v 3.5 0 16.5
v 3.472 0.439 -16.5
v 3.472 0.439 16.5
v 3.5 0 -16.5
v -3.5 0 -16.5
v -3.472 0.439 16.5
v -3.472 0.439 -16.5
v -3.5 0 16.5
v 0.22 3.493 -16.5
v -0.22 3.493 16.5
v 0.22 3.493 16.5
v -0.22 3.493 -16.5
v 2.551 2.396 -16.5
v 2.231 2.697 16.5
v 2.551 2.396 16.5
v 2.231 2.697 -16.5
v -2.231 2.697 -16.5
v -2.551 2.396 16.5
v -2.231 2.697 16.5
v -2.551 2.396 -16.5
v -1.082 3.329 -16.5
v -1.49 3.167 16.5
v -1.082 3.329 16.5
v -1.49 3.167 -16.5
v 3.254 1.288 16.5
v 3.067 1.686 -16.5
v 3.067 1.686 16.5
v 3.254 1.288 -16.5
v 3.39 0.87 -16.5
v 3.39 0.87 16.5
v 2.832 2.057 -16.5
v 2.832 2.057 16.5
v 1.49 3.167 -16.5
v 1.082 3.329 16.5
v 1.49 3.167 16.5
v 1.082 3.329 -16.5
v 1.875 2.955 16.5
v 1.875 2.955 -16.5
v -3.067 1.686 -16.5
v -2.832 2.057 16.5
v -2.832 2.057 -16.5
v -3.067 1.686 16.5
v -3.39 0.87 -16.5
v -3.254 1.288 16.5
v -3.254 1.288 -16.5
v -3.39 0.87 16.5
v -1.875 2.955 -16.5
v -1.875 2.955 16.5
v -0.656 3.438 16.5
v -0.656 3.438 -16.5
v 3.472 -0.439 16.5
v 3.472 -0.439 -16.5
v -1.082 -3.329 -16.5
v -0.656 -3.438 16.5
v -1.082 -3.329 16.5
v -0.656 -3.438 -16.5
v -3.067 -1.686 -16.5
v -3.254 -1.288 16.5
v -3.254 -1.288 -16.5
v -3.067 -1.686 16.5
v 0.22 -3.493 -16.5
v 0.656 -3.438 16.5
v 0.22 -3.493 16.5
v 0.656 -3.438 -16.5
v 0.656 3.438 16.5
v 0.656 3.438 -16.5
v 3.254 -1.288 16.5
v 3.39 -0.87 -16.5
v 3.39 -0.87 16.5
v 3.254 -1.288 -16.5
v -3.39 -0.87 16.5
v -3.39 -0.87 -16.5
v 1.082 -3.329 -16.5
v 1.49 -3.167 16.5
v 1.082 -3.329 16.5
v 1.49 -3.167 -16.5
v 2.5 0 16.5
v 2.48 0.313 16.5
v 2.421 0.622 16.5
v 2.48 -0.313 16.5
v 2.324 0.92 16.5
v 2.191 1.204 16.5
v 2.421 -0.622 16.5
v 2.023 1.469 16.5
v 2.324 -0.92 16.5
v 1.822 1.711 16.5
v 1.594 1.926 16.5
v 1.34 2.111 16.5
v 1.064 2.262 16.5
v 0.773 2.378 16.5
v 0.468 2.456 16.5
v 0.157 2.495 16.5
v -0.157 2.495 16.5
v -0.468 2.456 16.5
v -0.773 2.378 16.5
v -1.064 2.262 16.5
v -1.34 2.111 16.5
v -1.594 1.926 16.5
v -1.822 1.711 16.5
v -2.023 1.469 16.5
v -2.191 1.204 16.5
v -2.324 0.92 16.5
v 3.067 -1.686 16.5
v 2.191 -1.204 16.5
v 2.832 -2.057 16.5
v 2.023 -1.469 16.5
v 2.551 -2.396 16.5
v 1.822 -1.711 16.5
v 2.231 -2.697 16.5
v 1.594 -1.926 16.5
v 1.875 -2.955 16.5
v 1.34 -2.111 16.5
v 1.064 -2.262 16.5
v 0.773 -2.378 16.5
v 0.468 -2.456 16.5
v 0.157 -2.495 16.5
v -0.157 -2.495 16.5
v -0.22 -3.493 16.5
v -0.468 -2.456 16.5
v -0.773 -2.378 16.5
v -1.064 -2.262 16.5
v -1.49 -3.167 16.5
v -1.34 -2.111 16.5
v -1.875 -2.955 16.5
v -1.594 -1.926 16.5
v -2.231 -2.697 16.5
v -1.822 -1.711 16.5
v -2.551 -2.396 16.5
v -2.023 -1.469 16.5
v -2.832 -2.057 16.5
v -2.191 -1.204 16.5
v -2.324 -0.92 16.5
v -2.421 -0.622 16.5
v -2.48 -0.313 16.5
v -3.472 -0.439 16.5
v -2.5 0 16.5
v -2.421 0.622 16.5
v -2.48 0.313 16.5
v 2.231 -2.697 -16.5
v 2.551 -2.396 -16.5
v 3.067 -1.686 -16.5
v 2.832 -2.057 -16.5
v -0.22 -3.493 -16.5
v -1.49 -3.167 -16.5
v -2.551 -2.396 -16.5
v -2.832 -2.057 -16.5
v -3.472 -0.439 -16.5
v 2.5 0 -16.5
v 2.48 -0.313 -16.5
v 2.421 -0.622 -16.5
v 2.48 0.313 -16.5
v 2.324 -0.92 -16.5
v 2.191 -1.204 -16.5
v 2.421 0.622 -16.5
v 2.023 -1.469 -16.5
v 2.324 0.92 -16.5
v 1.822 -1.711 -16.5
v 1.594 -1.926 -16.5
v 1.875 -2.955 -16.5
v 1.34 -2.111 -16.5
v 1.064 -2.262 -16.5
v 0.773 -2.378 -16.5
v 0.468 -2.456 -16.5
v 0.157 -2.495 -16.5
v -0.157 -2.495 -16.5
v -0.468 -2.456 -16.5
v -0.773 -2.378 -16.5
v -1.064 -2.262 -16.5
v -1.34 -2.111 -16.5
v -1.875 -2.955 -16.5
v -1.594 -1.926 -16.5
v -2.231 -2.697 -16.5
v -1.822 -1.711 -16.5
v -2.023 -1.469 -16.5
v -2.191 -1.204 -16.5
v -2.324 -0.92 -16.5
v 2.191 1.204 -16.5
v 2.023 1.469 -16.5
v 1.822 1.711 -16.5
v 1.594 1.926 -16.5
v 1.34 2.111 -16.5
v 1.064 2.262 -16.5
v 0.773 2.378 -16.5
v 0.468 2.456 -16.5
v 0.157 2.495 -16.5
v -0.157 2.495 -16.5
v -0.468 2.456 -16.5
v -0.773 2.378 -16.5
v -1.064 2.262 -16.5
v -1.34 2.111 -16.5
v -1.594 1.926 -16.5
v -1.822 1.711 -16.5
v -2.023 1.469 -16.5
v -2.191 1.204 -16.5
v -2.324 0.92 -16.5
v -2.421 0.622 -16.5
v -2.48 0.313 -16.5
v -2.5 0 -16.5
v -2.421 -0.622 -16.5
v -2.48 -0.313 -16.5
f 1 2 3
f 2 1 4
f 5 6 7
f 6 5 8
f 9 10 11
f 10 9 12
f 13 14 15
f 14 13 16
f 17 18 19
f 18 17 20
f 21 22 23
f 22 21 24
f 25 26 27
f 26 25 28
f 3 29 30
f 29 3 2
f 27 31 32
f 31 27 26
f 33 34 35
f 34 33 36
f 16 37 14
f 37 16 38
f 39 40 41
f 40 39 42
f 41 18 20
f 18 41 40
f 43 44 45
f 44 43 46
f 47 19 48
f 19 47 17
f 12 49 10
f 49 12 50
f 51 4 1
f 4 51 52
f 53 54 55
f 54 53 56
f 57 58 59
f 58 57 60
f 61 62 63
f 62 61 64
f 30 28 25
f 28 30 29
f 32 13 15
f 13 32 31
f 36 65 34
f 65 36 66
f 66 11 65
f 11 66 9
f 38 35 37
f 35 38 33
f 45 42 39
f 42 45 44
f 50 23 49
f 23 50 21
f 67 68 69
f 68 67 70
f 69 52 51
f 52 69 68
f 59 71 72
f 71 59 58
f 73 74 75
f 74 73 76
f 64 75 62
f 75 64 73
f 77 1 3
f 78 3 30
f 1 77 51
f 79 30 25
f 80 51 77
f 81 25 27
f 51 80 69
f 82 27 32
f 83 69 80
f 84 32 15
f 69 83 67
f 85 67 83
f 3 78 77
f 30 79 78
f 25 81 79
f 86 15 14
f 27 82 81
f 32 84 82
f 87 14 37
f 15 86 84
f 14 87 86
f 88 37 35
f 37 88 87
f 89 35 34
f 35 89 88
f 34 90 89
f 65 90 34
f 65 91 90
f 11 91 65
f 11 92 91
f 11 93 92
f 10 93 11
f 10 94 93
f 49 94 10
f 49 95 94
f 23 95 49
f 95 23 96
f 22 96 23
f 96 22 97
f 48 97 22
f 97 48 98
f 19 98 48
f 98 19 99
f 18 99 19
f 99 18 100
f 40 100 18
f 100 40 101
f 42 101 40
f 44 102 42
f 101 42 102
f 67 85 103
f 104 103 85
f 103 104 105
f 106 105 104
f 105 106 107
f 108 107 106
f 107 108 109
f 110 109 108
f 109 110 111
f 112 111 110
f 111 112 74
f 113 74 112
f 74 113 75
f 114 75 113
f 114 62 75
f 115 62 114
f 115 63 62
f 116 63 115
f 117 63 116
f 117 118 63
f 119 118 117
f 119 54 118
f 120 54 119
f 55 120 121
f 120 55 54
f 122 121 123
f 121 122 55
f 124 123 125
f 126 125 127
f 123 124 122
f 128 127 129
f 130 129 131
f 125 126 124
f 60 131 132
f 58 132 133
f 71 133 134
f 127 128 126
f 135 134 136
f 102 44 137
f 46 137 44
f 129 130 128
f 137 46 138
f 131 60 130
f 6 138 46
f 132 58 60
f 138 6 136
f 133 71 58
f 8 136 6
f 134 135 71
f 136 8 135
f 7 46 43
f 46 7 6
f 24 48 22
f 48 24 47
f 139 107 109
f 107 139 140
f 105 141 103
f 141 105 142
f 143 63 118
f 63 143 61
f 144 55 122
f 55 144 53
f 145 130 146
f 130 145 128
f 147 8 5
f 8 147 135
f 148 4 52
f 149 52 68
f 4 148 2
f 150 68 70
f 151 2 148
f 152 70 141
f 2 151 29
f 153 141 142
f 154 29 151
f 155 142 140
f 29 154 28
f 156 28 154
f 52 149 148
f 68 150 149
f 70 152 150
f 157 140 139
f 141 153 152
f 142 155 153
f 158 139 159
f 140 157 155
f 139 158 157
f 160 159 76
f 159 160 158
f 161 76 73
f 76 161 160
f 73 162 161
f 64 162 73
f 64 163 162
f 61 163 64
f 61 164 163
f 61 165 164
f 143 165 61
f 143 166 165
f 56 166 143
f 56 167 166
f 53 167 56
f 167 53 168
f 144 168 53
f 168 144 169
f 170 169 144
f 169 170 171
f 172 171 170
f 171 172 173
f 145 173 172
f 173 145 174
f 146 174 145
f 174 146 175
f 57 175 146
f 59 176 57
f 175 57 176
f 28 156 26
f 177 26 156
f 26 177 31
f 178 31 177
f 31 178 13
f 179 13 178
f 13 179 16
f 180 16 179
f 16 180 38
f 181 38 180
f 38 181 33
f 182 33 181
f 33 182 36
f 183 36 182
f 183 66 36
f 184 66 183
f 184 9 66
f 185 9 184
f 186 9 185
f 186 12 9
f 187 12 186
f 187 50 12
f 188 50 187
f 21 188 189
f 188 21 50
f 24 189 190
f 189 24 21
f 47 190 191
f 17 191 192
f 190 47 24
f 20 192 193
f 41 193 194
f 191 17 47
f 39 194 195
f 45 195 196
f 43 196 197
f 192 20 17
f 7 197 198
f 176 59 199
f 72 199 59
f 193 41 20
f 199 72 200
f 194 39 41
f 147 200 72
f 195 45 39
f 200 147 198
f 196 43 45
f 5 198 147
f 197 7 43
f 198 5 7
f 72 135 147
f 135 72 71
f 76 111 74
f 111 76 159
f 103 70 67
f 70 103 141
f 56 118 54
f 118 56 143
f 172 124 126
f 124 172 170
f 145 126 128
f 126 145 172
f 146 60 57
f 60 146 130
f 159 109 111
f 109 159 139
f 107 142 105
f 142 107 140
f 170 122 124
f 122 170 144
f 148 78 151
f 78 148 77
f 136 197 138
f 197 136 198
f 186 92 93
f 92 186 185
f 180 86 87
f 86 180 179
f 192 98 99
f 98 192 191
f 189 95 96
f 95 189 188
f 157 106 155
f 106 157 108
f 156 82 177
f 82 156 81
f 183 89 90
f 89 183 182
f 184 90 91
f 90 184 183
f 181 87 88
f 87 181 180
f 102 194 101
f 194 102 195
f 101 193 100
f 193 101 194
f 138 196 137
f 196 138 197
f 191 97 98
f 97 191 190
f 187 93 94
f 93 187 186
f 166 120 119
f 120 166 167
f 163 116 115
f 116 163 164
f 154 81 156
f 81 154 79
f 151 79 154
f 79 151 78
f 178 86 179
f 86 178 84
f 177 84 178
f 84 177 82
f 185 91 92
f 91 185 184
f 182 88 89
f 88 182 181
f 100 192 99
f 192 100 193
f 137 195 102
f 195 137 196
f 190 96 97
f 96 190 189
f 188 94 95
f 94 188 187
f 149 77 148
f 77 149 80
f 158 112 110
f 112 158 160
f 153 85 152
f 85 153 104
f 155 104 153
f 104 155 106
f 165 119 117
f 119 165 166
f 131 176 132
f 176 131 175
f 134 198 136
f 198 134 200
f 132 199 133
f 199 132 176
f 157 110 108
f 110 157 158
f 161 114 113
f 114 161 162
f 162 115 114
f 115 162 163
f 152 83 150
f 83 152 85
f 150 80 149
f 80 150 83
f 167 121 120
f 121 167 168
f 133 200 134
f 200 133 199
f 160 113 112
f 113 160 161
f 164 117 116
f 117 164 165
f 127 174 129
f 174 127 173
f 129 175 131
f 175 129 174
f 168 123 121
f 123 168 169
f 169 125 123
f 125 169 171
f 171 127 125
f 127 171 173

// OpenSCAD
$fn = 50;


difference() {
	union() {
		translate(v = [0, 0, -16.5000000000]) {
			cylinder(h = 33, r = 3.5000000000);
		}
	}
	union() {
		translate(v = [0, 0, -100.0000000000]) {
			cylinder(h = 200, r = 2.5000000000);
		}
	}
}
